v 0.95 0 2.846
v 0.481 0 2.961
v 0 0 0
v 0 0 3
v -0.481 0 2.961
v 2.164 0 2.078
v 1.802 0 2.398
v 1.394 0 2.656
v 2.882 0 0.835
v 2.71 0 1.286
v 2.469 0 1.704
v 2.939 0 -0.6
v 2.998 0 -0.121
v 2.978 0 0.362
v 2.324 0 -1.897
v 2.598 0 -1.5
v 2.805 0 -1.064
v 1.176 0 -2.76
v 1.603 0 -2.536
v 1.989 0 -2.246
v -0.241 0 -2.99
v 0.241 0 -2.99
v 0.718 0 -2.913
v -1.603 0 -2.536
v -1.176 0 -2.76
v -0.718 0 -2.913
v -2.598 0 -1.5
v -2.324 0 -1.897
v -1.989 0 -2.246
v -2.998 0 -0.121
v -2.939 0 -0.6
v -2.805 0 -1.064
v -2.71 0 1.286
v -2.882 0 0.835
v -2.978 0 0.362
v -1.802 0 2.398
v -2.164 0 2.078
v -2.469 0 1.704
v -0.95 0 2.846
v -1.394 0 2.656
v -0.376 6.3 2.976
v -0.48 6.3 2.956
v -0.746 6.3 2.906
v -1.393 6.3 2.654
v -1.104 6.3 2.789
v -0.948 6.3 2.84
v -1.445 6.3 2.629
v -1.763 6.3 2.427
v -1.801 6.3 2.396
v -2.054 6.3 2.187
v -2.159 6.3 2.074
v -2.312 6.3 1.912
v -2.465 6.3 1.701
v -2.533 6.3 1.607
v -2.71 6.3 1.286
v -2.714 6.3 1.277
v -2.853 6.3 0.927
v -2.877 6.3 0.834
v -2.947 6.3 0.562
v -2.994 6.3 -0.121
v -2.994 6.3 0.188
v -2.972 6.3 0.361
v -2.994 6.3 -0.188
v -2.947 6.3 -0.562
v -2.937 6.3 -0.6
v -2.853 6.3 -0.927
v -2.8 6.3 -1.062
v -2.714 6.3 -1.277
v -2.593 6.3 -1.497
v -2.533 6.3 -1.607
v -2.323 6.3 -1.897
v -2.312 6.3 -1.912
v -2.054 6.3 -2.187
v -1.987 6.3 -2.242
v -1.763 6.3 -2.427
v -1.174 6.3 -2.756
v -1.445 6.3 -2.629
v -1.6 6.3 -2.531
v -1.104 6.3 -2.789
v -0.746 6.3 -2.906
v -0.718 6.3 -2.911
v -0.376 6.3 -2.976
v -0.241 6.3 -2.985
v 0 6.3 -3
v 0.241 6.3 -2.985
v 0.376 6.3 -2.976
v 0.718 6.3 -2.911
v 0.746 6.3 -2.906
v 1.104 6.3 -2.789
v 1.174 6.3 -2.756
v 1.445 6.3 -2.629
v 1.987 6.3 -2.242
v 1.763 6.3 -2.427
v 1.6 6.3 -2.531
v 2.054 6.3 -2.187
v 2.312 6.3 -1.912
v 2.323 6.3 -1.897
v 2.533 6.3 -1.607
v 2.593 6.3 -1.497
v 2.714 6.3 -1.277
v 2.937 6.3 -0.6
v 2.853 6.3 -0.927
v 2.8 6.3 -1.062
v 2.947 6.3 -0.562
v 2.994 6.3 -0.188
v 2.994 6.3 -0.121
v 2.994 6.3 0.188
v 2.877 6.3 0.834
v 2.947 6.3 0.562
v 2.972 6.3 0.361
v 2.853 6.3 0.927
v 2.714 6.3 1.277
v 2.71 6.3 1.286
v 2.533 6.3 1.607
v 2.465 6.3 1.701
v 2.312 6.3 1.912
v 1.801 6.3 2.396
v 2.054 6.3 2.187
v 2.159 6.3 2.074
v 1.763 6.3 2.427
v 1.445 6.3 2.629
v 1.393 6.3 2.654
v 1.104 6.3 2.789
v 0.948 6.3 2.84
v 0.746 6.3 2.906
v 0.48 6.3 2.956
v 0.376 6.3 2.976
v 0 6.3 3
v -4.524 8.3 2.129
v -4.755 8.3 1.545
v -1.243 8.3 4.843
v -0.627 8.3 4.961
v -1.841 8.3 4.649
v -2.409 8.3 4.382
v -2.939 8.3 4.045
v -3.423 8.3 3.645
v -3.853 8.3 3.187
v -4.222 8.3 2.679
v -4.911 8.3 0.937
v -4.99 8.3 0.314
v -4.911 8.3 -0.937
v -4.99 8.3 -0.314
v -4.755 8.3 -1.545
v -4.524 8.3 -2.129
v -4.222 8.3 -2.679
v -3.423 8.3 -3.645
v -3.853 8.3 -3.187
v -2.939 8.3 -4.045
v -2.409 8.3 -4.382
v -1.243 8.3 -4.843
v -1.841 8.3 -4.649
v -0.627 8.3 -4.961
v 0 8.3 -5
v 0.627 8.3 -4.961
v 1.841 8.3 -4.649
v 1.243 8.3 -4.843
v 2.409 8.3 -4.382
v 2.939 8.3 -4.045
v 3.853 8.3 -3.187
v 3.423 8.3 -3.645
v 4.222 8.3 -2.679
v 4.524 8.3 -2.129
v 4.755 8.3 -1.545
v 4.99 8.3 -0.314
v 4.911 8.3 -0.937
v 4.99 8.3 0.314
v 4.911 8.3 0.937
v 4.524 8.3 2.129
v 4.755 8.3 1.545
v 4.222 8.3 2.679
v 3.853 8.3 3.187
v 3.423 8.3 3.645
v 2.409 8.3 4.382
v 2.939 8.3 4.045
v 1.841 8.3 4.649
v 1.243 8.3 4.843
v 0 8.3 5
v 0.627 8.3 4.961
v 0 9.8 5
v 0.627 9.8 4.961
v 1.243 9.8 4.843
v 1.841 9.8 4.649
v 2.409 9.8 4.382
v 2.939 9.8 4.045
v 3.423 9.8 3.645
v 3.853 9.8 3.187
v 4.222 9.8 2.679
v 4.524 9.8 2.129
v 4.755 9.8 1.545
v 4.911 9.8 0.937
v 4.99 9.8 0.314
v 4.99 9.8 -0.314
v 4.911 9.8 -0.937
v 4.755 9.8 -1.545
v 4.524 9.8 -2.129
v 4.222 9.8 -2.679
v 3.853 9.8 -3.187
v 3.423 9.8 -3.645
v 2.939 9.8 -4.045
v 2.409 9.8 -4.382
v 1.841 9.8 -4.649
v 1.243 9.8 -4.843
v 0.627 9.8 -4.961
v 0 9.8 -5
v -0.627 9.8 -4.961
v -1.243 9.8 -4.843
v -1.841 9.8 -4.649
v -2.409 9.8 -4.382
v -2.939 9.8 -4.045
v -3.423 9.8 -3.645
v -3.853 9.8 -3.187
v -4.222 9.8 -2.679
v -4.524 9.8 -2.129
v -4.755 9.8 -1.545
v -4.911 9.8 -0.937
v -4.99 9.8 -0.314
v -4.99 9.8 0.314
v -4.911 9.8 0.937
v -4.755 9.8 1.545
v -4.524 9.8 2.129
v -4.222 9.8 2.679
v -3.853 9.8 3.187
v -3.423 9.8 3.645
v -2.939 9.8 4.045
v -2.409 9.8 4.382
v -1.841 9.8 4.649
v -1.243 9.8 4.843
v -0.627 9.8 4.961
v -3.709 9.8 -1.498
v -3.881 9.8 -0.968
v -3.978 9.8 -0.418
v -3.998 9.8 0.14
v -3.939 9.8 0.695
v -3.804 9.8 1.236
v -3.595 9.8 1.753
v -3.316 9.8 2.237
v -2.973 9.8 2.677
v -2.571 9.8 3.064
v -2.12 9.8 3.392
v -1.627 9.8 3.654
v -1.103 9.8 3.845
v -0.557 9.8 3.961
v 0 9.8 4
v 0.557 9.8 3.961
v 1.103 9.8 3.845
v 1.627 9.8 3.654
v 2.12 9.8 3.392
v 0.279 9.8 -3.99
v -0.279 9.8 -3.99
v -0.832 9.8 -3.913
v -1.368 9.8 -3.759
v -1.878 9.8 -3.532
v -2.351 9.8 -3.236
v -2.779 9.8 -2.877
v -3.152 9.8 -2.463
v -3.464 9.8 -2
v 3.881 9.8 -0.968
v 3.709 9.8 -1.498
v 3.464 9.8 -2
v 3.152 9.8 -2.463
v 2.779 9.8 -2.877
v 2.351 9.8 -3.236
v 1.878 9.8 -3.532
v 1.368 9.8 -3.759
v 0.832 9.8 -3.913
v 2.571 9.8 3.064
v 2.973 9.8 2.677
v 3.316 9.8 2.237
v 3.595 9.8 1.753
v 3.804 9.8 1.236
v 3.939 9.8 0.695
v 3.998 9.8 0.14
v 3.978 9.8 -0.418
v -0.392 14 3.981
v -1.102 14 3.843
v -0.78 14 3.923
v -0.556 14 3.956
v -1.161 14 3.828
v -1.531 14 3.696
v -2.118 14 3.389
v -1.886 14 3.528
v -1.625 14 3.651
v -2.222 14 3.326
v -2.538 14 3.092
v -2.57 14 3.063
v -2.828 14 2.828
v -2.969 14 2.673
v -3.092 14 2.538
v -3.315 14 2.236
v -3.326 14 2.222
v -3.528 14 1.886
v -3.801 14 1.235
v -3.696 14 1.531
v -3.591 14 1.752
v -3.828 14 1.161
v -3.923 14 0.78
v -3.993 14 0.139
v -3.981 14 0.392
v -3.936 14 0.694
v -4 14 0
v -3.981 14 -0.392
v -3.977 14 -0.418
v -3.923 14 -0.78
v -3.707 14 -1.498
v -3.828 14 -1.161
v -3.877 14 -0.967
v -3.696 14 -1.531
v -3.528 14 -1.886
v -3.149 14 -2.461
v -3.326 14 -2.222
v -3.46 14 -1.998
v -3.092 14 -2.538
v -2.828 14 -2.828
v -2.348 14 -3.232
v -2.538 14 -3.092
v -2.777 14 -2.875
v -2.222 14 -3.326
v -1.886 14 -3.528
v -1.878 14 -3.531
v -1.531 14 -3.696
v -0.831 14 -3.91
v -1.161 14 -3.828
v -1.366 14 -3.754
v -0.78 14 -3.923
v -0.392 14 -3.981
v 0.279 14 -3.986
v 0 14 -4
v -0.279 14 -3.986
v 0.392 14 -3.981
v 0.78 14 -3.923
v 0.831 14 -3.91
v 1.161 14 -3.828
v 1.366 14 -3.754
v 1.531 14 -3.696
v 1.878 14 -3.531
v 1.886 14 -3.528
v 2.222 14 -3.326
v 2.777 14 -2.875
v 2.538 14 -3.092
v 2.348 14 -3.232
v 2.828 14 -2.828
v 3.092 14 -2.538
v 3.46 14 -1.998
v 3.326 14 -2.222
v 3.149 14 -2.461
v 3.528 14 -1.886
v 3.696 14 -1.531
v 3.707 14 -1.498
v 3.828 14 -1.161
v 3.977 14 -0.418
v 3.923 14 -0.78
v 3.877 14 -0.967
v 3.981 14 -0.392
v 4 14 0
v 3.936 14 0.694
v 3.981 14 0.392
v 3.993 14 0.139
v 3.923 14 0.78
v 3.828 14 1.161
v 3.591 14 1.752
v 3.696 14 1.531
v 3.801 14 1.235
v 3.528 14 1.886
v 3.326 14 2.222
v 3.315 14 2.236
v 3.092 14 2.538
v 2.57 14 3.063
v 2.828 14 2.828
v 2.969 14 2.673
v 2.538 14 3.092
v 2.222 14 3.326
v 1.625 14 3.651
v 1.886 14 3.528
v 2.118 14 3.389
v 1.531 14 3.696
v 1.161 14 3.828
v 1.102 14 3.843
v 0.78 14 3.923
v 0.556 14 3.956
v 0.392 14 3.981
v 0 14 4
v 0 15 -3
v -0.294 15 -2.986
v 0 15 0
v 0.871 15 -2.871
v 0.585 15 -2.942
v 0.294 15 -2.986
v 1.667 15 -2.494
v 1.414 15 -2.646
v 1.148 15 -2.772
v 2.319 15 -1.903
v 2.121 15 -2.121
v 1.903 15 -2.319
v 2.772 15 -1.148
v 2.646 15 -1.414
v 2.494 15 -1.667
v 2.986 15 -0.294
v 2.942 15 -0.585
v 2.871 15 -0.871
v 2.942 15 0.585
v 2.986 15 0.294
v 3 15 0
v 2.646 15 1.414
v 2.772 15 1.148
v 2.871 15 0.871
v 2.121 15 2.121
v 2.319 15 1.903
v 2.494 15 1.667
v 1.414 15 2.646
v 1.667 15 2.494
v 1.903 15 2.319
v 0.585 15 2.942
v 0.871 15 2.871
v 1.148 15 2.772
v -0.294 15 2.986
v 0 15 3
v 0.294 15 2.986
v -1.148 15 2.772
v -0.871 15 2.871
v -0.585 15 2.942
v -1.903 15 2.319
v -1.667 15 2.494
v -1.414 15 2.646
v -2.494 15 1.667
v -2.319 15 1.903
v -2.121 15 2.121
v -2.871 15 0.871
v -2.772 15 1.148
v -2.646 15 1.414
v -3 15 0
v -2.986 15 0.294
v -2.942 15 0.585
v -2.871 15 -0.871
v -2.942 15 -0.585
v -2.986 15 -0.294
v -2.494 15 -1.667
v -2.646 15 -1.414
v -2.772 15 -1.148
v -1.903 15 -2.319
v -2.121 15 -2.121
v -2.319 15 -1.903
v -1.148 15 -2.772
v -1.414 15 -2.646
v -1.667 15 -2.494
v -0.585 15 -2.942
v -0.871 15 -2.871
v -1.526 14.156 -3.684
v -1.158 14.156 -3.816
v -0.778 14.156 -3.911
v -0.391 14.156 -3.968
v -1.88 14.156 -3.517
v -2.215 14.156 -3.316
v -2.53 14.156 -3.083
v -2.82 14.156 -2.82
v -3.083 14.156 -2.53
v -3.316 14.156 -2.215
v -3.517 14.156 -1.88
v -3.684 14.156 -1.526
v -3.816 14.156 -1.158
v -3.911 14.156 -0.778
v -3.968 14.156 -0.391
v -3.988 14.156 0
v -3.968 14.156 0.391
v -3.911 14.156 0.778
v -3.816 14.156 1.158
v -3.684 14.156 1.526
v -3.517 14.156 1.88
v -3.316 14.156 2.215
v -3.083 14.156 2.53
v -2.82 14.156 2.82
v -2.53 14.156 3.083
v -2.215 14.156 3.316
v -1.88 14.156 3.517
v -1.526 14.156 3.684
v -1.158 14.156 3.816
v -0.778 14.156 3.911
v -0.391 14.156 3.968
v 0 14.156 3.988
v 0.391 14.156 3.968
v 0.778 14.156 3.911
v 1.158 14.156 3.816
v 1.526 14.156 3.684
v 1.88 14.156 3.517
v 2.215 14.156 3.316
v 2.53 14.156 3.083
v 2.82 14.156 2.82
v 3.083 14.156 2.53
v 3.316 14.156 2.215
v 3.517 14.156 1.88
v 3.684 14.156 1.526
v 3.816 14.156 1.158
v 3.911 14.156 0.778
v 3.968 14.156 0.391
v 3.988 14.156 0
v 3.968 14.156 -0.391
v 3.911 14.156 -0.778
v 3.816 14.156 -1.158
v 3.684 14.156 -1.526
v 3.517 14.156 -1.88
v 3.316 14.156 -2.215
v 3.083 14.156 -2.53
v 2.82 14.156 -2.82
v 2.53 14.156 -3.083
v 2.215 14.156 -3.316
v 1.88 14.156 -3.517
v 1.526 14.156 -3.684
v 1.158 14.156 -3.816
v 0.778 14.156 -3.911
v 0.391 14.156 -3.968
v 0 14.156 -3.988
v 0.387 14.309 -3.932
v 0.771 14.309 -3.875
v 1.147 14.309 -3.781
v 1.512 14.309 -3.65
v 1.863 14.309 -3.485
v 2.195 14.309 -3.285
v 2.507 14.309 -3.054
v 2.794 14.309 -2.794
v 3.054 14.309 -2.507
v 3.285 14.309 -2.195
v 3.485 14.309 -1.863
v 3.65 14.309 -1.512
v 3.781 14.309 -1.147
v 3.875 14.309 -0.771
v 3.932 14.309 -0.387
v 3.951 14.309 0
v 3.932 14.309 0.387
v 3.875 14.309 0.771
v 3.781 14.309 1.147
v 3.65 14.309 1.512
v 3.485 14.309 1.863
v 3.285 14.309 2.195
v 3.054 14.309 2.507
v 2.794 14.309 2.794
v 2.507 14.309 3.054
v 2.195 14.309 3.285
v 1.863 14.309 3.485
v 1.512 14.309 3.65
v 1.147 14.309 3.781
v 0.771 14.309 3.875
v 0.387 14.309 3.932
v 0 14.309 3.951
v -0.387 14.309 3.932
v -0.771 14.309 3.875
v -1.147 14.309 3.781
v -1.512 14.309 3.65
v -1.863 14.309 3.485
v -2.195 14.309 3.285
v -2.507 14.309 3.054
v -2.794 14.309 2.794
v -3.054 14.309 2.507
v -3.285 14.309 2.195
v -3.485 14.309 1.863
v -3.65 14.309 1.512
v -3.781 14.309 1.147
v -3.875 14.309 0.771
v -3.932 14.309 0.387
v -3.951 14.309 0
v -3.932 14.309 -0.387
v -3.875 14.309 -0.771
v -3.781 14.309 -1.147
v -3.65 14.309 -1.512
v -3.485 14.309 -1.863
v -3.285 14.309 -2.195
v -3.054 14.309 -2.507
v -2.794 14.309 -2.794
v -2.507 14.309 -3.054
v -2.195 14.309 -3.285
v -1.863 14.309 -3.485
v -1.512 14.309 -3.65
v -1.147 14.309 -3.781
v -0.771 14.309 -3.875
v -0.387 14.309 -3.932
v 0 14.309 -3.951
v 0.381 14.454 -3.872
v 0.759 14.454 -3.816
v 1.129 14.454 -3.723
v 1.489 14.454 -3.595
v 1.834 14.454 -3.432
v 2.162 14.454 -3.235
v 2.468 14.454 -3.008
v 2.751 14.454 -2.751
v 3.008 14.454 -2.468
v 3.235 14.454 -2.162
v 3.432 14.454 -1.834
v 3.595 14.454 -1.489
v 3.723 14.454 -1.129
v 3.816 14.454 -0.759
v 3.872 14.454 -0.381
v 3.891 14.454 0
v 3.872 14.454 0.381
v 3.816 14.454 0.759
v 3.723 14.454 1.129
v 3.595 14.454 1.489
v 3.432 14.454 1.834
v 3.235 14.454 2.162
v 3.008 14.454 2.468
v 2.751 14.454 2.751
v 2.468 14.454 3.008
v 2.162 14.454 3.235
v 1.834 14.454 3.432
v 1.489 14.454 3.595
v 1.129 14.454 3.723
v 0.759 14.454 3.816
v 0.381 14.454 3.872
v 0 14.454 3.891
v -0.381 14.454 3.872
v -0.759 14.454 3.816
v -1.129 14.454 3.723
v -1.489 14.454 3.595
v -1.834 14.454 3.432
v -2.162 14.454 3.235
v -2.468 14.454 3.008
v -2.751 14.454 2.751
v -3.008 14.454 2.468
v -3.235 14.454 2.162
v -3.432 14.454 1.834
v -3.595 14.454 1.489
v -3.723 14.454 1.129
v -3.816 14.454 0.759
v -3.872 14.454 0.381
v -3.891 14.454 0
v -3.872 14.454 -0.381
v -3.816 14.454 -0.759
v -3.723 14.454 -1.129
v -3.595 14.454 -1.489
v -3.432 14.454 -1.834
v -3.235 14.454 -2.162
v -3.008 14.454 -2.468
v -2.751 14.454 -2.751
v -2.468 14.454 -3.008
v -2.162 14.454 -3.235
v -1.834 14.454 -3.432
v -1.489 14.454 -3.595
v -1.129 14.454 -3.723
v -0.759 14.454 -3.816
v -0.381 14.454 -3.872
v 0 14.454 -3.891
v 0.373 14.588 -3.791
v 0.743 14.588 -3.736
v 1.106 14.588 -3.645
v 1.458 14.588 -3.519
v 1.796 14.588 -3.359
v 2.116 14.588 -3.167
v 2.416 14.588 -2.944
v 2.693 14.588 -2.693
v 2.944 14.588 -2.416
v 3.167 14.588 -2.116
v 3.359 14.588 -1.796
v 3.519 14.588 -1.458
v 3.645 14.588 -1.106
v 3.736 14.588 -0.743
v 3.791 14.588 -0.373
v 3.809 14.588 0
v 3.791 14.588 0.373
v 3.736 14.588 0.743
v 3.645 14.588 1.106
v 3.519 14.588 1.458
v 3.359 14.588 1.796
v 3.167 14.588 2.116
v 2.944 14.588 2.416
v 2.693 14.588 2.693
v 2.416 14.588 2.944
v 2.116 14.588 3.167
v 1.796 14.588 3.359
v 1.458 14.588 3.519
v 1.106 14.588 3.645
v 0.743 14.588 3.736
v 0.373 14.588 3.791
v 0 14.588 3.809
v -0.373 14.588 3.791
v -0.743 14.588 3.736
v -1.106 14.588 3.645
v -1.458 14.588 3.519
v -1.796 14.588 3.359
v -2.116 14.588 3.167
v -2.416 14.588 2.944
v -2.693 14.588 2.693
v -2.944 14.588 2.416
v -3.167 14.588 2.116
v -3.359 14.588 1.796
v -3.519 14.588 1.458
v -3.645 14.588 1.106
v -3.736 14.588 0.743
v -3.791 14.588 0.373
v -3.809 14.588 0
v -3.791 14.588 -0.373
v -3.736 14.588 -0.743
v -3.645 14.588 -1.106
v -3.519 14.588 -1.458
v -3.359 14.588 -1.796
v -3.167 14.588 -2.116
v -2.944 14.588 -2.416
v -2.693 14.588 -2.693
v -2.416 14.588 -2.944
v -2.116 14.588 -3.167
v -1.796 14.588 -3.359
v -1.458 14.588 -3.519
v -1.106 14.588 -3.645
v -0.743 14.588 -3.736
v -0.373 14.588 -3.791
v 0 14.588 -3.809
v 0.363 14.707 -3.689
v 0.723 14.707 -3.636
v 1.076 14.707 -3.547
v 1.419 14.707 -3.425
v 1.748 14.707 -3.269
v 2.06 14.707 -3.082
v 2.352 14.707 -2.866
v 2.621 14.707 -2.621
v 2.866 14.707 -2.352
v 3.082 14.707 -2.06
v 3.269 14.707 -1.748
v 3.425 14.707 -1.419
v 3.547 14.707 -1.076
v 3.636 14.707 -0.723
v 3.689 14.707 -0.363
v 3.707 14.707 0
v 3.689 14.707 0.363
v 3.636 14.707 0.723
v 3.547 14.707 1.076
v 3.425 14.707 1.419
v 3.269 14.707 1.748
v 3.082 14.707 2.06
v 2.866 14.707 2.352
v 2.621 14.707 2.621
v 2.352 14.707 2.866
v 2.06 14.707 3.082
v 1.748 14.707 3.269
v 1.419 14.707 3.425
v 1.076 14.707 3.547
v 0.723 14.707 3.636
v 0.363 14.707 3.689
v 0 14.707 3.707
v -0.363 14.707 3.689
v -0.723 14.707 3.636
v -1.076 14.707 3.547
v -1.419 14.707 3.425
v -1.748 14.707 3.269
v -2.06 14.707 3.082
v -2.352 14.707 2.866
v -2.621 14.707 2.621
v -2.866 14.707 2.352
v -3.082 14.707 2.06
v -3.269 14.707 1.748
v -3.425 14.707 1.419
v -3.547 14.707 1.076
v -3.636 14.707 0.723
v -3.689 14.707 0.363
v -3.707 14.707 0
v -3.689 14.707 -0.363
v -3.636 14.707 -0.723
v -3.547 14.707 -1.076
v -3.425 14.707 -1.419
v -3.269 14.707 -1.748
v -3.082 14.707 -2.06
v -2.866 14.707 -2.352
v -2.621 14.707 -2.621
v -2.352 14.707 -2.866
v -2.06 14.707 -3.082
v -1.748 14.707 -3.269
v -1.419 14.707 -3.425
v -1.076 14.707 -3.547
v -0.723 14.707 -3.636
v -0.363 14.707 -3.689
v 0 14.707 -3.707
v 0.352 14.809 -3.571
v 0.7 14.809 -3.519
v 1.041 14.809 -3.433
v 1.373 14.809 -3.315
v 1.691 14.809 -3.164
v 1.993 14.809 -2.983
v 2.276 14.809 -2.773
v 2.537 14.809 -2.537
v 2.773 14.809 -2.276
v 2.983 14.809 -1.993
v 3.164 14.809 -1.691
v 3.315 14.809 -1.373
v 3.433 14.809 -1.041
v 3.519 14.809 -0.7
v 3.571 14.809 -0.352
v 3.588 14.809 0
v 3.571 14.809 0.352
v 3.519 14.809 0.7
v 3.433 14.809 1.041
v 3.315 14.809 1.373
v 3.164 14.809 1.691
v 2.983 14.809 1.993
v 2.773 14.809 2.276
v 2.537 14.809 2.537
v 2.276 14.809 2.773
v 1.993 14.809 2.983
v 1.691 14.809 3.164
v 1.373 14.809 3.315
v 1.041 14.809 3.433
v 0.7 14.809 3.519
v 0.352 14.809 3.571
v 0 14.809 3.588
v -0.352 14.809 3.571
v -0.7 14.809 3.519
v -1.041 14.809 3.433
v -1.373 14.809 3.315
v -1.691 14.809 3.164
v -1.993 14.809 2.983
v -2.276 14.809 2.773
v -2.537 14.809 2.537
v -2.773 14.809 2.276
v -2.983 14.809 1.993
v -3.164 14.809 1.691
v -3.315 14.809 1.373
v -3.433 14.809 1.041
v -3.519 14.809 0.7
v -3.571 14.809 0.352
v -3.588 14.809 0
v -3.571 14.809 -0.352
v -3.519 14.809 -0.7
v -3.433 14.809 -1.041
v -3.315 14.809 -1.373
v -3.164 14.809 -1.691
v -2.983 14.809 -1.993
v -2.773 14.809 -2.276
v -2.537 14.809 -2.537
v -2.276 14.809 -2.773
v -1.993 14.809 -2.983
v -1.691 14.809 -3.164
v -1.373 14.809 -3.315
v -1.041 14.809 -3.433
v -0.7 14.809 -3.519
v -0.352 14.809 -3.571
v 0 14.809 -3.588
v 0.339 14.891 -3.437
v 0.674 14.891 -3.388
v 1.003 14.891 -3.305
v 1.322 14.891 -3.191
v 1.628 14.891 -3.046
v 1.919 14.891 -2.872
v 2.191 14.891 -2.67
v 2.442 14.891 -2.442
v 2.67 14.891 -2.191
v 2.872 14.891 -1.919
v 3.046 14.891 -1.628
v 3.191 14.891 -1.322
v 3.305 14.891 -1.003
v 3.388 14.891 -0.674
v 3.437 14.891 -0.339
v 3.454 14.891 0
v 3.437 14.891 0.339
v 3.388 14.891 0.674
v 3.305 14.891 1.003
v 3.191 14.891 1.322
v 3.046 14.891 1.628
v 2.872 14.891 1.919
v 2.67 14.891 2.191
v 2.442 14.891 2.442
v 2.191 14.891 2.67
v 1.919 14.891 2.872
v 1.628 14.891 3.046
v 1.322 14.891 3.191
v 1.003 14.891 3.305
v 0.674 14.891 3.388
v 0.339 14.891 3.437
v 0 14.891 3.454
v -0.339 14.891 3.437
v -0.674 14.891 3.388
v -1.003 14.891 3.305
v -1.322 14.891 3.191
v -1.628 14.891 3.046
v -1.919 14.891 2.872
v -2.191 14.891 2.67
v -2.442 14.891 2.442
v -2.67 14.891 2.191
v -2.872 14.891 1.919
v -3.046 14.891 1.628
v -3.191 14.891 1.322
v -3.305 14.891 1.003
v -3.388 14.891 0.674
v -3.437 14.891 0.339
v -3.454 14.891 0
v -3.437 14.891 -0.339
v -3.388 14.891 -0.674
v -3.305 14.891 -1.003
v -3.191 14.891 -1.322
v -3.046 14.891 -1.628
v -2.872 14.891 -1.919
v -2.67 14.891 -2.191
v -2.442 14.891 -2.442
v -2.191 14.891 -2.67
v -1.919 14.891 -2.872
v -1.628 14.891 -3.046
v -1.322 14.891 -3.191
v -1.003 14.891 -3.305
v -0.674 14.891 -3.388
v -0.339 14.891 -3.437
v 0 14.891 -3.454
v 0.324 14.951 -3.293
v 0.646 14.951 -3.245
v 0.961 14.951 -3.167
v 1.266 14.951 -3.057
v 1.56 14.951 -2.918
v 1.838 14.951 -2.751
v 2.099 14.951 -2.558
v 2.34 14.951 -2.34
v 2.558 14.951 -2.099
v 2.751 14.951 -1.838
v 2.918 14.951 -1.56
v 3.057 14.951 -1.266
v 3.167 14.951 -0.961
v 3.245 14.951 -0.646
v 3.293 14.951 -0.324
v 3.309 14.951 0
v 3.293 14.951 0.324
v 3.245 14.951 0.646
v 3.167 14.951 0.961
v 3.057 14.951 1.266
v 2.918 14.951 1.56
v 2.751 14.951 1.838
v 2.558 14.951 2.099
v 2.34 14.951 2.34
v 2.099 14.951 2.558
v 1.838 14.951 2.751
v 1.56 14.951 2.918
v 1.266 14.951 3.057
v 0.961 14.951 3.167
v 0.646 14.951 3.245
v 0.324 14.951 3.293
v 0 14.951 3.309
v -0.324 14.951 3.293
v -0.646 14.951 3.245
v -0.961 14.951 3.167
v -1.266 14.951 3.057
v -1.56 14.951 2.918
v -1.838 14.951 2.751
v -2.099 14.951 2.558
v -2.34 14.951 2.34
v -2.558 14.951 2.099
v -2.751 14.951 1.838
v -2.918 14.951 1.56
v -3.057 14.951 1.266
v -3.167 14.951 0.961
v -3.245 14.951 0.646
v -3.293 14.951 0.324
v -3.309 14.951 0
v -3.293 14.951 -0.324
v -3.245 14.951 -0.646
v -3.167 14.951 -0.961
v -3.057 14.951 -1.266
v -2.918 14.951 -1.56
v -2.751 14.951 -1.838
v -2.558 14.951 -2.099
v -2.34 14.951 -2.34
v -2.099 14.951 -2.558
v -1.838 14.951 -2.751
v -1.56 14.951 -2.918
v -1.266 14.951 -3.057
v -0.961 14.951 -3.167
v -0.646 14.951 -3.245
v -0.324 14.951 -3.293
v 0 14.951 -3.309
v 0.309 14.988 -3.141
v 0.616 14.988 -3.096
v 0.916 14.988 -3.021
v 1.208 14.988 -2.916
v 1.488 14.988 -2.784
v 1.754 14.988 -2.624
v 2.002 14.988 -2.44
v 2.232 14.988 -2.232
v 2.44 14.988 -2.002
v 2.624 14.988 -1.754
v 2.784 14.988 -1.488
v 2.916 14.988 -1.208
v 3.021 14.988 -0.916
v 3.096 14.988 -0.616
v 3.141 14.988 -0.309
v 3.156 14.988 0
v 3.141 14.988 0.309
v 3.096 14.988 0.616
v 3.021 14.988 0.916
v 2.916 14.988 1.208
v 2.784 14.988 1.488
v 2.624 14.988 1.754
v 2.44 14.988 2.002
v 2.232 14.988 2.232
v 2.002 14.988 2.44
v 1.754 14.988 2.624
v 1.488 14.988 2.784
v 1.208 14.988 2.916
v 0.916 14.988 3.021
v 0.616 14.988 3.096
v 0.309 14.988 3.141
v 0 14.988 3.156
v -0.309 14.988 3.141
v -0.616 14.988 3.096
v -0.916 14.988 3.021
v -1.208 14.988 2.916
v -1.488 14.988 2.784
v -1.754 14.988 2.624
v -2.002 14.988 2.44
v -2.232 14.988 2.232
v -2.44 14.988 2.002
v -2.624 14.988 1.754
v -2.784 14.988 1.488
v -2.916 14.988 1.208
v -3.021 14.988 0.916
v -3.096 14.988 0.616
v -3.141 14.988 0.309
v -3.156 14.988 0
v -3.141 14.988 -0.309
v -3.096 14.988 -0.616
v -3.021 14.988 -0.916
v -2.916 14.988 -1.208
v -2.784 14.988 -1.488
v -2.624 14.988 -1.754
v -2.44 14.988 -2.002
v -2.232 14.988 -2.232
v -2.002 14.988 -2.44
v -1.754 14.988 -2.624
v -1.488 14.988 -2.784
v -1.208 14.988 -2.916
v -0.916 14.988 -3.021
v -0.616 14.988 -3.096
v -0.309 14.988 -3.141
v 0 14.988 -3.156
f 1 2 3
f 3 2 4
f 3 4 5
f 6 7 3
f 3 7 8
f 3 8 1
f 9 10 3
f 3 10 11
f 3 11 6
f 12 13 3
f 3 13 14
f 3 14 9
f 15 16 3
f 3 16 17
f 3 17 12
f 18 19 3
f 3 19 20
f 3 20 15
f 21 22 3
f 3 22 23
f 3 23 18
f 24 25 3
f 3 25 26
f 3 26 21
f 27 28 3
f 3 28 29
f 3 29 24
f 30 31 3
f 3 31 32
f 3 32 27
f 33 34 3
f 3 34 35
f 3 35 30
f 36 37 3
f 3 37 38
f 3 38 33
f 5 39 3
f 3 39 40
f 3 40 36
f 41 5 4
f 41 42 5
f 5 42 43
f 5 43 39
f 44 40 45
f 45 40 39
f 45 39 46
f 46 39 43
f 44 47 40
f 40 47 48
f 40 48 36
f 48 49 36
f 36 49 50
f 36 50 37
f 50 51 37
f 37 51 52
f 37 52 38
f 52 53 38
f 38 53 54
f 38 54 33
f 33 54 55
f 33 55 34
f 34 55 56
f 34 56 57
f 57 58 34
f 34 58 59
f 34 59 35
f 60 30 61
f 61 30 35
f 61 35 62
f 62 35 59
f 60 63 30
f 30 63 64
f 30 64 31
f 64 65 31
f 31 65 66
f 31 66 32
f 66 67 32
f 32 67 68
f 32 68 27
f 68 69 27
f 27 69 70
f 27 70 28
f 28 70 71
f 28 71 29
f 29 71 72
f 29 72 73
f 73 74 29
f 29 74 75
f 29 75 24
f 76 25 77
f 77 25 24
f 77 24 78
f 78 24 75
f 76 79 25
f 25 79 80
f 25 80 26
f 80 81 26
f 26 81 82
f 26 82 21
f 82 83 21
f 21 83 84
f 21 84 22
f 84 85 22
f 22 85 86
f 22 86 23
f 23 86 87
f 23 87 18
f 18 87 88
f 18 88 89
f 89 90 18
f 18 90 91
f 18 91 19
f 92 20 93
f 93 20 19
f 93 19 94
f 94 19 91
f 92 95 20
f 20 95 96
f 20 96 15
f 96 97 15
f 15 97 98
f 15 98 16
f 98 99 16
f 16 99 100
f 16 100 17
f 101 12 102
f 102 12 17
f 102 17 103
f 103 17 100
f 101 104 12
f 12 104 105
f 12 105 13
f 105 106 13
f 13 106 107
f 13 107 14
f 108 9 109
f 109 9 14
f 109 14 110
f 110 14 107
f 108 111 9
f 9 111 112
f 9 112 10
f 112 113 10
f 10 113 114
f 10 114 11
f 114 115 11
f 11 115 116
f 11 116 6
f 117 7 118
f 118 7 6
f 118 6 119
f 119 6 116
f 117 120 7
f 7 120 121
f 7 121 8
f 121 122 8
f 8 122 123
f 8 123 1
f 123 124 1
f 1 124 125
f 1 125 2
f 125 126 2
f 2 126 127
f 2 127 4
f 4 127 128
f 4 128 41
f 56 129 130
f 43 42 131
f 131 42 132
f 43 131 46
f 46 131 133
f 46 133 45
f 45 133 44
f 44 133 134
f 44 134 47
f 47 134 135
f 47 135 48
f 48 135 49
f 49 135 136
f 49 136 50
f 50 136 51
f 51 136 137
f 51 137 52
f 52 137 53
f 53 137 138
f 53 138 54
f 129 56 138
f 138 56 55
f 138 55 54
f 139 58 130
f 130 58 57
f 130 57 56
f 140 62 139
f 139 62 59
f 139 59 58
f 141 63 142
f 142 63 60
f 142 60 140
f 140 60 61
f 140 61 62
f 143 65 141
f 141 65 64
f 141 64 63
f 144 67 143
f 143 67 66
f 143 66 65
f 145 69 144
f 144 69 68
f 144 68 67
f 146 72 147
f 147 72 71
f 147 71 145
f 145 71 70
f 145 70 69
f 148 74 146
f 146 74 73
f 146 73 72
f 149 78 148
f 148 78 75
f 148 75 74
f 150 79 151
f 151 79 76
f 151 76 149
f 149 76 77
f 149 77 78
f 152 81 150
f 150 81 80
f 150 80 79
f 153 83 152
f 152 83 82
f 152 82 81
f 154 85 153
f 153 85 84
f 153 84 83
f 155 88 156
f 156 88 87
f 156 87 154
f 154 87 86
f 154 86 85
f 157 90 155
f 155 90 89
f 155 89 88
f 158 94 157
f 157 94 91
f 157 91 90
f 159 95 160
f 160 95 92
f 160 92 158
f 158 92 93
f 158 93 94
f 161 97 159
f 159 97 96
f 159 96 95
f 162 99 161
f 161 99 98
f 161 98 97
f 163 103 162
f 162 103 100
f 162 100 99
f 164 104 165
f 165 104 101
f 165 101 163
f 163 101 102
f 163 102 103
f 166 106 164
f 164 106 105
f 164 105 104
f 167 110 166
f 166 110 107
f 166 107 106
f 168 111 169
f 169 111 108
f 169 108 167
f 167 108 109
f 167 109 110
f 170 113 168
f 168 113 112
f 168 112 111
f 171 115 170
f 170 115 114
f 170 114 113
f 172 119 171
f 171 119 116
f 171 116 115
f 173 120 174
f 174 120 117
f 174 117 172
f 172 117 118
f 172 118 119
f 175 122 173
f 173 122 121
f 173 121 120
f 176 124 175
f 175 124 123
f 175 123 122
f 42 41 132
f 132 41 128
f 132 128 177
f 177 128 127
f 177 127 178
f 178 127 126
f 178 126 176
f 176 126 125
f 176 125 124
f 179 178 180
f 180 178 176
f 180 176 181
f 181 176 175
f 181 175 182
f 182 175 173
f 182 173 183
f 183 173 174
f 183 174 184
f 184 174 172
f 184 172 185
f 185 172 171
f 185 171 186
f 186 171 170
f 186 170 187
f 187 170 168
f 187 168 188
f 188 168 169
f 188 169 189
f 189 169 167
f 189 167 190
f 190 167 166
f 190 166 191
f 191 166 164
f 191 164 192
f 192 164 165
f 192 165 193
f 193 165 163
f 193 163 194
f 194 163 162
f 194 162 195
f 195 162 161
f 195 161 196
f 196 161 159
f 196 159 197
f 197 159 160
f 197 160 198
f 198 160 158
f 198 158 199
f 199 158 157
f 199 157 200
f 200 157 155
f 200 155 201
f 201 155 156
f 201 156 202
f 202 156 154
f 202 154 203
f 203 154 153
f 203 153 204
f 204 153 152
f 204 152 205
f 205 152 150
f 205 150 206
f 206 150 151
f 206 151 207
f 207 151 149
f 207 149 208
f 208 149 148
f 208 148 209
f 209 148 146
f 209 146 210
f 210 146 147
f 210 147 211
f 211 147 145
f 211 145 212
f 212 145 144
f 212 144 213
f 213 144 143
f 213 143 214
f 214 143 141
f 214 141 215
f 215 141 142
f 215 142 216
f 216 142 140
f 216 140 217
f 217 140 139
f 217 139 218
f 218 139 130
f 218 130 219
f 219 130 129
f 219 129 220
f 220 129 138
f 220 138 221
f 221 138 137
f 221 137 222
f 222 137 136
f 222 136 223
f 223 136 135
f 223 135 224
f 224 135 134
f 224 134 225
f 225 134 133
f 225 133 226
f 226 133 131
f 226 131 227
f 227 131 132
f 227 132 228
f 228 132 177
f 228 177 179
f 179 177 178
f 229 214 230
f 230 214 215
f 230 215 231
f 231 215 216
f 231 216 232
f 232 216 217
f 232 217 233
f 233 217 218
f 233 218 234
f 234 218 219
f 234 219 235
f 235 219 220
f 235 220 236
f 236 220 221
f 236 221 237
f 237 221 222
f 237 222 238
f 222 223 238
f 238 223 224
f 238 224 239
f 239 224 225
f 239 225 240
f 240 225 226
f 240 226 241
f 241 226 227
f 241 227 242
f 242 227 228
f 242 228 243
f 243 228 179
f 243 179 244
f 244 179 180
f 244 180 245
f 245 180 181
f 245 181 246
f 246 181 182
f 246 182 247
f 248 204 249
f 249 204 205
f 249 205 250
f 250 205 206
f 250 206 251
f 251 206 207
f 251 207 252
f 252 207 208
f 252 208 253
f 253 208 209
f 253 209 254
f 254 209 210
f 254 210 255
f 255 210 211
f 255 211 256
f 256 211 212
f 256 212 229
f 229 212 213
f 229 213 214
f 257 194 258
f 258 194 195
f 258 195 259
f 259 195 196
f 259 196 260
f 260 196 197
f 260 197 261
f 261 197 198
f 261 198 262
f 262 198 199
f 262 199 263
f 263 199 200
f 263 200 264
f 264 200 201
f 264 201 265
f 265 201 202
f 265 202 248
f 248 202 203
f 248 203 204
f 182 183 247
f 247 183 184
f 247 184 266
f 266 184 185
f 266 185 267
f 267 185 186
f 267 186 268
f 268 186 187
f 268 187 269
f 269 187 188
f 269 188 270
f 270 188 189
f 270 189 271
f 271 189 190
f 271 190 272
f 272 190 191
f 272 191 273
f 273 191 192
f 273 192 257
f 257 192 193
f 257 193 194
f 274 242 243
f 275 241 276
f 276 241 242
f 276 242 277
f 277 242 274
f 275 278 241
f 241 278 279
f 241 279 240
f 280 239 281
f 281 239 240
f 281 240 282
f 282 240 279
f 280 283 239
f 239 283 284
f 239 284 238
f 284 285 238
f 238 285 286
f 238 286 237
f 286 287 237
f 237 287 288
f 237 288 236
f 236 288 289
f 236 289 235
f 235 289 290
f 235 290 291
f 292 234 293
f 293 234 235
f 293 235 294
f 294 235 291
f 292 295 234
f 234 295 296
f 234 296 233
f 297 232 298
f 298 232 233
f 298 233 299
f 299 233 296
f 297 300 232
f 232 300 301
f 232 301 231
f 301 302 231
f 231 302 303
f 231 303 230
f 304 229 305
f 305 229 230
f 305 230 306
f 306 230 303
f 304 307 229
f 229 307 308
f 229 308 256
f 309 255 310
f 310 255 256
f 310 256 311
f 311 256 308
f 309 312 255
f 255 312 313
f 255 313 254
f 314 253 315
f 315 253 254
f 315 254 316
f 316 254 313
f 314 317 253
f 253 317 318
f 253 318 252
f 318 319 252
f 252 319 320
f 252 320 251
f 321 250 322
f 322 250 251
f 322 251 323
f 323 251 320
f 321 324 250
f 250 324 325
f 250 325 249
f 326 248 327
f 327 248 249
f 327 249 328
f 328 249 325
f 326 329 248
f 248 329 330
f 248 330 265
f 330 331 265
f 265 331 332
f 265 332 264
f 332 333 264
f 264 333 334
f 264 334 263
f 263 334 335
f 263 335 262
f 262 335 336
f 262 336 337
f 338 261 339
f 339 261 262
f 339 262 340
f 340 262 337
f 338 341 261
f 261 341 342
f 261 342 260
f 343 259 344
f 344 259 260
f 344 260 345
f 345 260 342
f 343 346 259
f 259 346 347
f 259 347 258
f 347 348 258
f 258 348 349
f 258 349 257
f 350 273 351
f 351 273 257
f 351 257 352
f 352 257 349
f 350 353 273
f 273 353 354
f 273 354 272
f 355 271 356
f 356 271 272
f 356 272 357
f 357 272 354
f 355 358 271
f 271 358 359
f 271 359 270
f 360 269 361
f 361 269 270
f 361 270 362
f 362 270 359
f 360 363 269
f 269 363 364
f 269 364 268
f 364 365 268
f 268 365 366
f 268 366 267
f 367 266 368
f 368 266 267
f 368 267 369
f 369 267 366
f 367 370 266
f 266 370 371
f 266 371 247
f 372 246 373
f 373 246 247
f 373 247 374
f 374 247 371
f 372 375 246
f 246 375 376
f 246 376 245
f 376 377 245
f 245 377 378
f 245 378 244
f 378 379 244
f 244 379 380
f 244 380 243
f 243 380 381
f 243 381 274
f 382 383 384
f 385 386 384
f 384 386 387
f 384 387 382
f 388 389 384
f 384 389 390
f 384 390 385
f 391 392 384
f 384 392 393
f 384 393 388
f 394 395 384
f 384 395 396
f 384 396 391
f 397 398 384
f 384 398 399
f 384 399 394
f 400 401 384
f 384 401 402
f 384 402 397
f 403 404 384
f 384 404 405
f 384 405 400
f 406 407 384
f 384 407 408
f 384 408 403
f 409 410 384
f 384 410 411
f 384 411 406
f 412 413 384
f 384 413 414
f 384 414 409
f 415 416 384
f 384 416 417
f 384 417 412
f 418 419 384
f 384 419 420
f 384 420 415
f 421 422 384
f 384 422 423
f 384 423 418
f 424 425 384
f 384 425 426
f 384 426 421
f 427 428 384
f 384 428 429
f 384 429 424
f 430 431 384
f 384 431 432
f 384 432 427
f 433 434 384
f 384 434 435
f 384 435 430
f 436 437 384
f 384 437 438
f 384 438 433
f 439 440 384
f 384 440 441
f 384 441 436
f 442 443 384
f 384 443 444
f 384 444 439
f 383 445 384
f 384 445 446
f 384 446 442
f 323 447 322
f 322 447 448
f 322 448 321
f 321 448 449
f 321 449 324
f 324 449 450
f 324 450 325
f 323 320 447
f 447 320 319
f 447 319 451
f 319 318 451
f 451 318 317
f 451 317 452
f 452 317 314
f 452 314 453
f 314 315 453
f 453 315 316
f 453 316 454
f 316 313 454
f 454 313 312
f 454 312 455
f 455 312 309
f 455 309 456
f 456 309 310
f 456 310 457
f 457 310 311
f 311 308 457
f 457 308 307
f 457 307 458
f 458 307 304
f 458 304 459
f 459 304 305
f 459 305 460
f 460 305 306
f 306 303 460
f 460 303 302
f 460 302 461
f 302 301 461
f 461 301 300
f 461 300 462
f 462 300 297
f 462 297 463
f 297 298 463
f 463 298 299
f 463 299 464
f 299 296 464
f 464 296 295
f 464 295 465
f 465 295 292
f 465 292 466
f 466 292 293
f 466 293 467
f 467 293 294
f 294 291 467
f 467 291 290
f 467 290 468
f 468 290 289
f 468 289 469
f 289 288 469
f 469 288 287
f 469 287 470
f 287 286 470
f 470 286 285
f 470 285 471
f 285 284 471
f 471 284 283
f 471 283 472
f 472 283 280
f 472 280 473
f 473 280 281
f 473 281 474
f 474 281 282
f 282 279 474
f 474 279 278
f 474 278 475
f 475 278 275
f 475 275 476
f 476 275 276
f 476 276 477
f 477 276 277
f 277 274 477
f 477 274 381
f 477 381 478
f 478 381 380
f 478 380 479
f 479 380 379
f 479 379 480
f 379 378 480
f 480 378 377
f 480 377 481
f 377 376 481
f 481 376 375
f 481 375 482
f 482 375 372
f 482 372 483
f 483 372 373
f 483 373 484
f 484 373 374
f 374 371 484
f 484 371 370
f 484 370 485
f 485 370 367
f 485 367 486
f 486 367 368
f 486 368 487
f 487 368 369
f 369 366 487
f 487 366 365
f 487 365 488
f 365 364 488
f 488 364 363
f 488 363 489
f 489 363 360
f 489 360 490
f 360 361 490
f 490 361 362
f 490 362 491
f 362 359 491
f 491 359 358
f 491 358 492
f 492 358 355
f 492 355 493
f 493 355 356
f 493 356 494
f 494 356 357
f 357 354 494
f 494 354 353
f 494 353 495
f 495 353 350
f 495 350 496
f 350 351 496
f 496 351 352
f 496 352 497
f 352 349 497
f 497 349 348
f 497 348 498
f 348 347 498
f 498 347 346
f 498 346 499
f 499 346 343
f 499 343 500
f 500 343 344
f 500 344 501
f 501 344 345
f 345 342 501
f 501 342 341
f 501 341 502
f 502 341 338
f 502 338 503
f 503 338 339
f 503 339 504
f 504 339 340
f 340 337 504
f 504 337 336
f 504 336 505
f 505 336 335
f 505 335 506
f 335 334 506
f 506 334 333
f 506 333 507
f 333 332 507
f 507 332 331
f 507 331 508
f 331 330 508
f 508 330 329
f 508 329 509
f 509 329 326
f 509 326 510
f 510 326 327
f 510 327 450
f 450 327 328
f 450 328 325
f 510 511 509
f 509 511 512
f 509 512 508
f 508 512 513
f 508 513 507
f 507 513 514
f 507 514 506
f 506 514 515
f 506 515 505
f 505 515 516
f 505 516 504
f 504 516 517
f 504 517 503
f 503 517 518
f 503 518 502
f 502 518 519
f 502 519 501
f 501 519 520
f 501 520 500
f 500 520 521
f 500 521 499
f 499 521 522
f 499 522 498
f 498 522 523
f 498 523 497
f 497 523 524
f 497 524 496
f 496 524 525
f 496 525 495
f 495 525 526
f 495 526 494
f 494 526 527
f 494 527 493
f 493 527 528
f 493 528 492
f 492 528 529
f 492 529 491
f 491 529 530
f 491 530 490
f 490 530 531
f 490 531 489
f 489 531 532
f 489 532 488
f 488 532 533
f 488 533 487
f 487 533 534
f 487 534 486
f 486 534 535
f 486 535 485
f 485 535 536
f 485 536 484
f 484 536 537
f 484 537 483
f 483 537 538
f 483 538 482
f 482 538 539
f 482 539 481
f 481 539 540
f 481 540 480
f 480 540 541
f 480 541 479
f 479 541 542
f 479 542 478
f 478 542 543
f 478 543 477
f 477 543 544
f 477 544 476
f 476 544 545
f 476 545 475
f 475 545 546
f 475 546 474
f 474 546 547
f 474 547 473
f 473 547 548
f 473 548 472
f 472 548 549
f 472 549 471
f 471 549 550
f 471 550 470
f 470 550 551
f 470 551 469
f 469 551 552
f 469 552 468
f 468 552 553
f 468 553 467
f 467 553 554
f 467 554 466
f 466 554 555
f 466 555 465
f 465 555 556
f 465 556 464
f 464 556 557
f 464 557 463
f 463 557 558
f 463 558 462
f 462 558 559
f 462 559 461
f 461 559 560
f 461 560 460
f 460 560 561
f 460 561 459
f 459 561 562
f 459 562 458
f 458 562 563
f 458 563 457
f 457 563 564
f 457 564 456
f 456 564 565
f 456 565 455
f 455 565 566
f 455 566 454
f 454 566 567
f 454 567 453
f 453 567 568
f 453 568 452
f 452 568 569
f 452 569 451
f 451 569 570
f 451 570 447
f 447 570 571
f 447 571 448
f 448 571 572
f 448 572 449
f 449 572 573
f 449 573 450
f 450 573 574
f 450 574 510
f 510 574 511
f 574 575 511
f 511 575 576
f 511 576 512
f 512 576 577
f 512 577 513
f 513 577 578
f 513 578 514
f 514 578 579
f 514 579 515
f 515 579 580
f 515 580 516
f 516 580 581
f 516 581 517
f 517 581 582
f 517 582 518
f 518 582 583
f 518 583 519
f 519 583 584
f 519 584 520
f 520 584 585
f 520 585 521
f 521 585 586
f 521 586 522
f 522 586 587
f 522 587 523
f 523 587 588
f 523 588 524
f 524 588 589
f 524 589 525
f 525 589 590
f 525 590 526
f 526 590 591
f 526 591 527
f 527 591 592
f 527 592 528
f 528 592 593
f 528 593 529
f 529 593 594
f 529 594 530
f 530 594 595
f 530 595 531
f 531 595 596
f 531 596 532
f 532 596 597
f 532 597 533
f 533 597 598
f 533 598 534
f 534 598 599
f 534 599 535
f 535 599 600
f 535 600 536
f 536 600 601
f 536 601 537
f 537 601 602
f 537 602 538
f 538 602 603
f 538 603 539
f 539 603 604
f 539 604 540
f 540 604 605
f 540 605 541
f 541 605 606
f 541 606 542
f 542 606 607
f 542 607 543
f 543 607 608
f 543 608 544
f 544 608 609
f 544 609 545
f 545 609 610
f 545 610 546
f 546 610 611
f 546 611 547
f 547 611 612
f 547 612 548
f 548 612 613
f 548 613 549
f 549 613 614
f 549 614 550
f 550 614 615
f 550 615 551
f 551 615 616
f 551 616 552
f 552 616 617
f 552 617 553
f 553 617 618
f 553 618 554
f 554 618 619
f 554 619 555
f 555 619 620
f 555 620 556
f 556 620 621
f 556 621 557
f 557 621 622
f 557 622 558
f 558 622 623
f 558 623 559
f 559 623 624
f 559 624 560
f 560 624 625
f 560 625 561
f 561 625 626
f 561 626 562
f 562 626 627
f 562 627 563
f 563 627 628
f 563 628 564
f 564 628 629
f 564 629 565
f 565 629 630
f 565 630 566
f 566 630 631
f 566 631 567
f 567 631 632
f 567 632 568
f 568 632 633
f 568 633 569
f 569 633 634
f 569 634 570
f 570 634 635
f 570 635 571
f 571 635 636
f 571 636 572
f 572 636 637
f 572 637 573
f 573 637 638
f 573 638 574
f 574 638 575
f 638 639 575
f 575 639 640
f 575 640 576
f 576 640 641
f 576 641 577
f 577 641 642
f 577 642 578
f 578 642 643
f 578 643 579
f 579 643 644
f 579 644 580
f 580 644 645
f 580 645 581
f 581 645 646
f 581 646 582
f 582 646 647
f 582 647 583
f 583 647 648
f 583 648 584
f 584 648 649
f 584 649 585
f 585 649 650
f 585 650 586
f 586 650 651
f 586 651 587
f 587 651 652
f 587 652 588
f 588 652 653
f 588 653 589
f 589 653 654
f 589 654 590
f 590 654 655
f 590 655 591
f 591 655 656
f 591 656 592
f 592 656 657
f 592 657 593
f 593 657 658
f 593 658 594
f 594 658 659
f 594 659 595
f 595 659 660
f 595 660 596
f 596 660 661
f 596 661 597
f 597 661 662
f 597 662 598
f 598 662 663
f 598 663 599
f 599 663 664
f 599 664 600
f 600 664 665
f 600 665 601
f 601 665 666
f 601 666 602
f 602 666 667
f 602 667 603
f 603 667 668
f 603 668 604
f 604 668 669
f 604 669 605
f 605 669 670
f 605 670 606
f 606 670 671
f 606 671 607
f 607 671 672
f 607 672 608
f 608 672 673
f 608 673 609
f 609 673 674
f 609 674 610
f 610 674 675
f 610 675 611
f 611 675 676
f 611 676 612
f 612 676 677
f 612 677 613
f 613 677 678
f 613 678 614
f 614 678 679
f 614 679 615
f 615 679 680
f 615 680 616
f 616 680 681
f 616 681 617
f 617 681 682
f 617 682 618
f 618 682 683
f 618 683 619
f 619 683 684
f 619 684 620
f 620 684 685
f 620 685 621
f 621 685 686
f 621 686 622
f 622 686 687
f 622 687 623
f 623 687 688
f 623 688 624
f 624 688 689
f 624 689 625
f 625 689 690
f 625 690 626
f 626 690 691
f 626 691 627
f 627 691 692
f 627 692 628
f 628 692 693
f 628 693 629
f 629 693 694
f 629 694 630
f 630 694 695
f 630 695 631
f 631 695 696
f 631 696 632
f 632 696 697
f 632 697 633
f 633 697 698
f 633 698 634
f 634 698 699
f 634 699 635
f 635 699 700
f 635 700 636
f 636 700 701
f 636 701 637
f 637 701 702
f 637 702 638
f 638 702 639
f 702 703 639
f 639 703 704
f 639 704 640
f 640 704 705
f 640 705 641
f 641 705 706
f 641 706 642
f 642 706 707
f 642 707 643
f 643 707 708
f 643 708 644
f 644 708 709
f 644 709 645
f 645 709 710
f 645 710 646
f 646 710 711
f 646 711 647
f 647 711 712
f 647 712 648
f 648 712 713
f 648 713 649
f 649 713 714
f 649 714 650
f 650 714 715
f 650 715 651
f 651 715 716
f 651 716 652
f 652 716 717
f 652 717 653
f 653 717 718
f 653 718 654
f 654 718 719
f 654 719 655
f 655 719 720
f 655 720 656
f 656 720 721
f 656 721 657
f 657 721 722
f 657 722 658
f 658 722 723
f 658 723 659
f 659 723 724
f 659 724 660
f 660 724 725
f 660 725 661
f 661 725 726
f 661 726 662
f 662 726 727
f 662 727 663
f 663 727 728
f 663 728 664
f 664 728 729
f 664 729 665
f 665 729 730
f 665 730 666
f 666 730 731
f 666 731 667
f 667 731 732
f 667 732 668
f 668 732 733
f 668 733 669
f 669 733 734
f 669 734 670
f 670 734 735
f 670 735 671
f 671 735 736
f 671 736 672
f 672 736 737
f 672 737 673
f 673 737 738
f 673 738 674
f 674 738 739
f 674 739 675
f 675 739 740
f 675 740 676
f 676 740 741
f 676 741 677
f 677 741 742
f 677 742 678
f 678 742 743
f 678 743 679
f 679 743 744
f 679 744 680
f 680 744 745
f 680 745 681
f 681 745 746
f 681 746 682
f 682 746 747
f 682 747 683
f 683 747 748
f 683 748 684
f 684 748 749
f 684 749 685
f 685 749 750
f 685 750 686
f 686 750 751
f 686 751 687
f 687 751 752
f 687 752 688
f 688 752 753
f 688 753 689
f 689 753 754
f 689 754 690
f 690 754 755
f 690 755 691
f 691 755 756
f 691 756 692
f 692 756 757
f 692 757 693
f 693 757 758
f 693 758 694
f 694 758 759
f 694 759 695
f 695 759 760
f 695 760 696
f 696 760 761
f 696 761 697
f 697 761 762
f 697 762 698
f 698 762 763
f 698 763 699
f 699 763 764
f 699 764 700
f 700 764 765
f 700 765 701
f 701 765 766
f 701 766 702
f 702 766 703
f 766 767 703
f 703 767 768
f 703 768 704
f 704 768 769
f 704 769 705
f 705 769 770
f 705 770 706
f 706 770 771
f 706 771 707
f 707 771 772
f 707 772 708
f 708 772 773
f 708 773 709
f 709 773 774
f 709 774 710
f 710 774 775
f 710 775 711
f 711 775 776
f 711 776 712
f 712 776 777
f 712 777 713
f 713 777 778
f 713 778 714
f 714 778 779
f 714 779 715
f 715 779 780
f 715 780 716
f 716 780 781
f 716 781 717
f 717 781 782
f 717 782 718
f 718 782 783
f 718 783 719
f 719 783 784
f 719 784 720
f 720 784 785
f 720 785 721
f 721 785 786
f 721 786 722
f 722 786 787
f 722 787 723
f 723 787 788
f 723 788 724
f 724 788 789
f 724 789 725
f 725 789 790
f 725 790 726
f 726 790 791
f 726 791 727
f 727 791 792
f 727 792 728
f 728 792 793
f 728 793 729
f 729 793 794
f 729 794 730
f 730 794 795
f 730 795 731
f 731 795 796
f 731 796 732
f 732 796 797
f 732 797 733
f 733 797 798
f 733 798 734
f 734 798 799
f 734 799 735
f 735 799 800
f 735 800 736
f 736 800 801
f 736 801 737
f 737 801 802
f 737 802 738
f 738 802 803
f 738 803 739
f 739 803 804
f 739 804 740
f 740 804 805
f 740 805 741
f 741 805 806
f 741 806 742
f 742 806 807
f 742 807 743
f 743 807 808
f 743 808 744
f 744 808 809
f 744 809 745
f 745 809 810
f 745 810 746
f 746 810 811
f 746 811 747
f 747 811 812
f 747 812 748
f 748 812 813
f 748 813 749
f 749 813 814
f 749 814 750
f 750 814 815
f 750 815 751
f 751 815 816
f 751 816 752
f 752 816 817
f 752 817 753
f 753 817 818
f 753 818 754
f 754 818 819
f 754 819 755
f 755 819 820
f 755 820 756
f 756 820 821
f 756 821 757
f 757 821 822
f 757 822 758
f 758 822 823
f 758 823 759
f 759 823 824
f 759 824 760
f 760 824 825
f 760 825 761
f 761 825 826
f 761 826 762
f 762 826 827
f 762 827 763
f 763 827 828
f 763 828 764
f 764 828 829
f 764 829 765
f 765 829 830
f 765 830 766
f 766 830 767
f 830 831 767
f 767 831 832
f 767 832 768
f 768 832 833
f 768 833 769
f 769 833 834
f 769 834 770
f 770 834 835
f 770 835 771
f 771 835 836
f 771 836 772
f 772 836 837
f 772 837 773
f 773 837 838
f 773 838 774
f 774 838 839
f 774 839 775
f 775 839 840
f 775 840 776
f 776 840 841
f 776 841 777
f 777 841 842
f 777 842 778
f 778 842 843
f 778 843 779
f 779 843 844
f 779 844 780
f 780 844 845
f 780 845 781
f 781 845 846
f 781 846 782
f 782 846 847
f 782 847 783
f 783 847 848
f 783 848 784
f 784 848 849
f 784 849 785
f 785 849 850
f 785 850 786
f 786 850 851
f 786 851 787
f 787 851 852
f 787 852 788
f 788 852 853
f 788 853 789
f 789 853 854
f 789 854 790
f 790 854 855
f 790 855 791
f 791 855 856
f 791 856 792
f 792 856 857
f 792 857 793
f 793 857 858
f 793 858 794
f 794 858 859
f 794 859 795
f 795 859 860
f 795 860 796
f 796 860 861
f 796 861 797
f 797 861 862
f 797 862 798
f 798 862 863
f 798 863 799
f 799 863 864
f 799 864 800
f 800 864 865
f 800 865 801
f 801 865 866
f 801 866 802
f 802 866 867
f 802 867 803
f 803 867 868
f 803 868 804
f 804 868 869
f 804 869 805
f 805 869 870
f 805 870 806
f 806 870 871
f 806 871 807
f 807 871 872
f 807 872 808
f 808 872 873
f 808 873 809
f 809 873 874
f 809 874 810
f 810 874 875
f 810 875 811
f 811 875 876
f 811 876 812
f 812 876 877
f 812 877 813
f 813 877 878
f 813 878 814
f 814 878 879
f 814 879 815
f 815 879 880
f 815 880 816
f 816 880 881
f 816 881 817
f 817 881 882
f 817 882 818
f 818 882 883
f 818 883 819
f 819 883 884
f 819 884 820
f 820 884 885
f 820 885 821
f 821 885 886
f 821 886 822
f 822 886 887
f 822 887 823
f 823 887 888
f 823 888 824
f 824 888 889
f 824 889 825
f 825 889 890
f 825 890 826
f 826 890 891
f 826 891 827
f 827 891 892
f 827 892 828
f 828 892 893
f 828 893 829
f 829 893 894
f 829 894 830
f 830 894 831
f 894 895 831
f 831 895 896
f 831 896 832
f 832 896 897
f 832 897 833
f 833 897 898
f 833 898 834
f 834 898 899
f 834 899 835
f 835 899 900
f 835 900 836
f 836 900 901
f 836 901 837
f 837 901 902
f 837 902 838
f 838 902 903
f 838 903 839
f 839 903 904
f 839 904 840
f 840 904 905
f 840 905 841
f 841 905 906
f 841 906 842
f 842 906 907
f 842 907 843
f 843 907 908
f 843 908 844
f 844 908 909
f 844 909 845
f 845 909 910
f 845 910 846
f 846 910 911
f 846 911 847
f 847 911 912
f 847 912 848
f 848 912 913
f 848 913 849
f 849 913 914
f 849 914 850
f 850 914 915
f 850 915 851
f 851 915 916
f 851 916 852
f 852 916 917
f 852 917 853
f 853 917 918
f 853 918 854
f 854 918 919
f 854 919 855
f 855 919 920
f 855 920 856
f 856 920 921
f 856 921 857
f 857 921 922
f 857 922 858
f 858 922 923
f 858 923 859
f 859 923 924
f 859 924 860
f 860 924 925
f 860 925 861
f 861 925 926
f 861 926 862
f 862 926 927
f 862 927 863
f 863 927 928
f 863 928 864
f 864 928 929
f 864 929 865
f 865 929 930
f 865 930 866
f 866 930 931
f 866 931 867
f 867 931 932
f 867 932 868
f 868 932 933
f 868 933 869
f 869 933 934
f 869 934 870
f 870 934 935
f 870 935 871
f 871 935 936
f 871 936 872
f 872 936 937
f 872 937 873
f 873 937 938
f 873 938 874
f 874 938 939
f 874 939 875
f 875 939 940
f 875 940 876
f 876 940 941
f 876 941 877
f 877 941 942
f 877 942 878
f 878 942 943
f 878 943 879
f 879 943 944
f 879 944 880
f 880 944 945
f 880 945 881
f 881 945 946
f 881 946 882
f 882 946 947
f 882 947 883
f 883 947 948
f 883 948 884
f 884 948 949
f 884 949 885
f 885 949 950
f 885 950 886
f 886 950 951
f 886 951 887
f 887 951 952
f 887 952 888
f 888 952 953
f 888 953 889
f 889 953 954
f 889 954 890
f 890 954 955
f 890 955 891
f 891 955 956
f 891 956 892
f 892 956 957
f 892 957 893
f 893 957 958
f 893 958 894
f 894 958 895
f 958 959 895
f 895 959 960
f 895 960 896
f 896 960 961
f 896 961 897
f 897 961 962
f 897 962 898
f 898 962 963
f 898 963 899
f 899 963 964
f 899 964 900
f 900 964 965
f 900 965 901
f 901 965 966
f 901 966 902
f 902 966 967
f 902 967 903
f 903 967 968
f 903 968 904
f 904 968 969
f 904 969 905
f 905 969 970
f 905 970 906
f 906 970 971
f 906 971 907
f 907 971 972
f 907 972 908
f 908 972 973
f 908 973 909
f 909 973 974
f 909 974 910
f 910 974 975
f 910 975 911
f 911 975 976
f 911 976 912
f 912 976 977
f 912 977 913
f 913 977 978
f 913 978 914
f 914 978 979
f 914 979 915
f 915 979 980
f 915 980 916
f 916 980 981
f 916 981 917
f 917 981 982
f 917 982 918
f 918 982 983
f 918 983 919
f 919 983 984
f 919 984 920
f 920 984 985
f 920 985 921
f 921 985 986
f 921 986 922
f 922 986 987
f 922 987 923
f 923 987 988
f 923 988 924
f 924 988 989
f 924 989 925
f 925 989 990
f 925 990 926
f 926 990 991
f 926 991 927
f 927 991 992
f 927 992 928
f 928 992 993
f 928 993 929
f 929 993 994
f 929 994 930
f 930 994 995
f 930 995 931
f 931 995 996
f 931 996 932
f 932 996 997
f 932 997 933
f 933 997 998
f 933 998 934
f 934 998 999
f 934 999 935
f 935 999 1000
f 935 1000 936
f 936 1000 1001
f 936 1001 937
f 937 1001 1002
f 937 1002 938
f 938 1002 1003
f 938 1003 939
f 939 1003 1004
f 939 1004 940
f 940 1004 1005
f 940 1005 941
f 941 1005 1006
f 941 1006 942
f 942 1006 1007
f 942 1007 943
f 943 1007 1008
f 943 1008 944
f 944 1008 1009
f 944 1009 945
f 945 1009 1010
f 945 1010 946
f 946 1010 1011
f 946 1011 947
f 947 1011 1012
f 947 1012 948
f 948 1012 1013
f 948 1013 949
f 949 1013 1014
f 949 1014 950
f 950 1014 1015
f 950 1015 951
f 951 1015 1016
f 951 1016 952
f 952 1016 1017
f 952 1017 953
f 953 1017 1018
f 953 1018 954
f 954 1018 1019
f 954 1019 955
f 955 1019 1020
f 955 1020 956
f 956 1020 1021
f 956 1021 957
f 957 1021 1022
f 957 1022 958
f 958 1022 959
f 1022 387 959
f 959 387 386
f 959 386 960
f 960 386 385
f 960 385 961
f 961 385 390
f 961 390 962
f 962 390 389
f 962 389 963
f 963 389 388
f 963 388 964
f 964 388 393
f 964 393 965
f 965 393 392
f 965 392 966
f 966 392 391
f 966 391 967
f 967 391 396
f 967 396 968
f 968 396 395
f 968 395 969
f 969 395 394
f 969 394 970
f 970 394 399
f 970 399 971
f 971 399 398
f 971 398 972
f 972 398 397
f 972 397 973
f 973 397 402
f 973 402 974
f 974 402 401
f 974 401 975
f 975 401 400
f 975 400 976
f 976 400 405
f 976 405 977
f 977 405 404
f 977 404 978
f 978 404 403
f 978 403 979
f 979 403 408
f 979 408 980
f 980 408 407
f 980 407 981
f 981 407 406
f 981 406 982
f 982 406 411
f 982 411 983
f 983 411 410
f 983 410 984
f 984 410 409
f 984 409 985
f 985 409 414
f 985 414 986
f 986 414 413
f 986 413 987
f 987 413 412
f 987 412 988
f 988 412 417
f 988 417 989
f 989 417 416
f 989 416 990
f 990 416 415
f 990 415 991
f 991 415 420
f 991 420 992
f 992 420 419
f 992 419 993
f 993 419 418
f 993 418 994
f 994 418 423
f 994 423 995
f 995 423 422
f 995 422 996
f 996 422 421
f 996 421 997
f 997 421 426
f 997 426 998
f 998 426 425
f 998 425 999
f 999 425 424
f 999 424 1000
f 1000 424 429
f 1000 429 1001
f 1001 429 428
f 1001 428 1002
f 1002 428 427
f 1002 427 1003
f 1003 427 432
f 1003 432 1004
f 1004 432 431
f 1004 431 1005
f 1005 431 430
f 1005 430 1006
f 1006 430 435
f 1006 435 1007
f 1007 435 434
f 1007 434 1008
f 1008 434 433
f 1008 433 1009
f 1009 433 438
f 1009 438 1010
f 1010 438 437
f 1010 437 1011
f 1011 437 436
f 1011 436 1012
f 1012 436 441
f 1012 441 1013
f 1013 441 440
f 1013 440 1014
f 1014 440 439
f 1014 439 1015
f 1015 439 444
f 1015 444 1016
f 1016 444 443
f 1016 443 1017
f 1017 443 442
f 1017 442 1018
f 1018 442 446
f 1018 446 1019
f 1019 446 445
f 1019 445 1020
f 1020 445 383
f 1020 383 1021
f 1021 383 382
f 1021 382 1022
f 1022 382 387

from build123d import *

# Parameters (mm, degrees)
FILLET_1_R = 1


with BuildPart() as part:
    # Эскиз2 → Повернуть1 (revolve)
    with BuildSketch(Plane(origin=(0, 0, 0), x_dir=(0, 0, -1), z_dir=(1, 0, 0)), mode=Mode.PRIVATE) as revolve_1_sk:
        Polygon((0, 0), (3, 0), (3, 6.3), (5, 8.3), (5, 9.8), (4, 9.8), (4, 15), (0, 15), align=None)
    revolve(revolve_1_sk.sketch.rotate(Axis((0, 8.655462185, 0), (0, -1, 0)), 180), axis=Axis((0, 8.655462185, 0), (0, -1, 0)))

    # Скругление1
    fillet_1_edges = [part.edges().sort_by_distance(p)[0] for p in [
        (0, 15, -4),
    ]]
    fillet(fillet_1_edges, radius=FILLET_1_R)


solid = part.part
